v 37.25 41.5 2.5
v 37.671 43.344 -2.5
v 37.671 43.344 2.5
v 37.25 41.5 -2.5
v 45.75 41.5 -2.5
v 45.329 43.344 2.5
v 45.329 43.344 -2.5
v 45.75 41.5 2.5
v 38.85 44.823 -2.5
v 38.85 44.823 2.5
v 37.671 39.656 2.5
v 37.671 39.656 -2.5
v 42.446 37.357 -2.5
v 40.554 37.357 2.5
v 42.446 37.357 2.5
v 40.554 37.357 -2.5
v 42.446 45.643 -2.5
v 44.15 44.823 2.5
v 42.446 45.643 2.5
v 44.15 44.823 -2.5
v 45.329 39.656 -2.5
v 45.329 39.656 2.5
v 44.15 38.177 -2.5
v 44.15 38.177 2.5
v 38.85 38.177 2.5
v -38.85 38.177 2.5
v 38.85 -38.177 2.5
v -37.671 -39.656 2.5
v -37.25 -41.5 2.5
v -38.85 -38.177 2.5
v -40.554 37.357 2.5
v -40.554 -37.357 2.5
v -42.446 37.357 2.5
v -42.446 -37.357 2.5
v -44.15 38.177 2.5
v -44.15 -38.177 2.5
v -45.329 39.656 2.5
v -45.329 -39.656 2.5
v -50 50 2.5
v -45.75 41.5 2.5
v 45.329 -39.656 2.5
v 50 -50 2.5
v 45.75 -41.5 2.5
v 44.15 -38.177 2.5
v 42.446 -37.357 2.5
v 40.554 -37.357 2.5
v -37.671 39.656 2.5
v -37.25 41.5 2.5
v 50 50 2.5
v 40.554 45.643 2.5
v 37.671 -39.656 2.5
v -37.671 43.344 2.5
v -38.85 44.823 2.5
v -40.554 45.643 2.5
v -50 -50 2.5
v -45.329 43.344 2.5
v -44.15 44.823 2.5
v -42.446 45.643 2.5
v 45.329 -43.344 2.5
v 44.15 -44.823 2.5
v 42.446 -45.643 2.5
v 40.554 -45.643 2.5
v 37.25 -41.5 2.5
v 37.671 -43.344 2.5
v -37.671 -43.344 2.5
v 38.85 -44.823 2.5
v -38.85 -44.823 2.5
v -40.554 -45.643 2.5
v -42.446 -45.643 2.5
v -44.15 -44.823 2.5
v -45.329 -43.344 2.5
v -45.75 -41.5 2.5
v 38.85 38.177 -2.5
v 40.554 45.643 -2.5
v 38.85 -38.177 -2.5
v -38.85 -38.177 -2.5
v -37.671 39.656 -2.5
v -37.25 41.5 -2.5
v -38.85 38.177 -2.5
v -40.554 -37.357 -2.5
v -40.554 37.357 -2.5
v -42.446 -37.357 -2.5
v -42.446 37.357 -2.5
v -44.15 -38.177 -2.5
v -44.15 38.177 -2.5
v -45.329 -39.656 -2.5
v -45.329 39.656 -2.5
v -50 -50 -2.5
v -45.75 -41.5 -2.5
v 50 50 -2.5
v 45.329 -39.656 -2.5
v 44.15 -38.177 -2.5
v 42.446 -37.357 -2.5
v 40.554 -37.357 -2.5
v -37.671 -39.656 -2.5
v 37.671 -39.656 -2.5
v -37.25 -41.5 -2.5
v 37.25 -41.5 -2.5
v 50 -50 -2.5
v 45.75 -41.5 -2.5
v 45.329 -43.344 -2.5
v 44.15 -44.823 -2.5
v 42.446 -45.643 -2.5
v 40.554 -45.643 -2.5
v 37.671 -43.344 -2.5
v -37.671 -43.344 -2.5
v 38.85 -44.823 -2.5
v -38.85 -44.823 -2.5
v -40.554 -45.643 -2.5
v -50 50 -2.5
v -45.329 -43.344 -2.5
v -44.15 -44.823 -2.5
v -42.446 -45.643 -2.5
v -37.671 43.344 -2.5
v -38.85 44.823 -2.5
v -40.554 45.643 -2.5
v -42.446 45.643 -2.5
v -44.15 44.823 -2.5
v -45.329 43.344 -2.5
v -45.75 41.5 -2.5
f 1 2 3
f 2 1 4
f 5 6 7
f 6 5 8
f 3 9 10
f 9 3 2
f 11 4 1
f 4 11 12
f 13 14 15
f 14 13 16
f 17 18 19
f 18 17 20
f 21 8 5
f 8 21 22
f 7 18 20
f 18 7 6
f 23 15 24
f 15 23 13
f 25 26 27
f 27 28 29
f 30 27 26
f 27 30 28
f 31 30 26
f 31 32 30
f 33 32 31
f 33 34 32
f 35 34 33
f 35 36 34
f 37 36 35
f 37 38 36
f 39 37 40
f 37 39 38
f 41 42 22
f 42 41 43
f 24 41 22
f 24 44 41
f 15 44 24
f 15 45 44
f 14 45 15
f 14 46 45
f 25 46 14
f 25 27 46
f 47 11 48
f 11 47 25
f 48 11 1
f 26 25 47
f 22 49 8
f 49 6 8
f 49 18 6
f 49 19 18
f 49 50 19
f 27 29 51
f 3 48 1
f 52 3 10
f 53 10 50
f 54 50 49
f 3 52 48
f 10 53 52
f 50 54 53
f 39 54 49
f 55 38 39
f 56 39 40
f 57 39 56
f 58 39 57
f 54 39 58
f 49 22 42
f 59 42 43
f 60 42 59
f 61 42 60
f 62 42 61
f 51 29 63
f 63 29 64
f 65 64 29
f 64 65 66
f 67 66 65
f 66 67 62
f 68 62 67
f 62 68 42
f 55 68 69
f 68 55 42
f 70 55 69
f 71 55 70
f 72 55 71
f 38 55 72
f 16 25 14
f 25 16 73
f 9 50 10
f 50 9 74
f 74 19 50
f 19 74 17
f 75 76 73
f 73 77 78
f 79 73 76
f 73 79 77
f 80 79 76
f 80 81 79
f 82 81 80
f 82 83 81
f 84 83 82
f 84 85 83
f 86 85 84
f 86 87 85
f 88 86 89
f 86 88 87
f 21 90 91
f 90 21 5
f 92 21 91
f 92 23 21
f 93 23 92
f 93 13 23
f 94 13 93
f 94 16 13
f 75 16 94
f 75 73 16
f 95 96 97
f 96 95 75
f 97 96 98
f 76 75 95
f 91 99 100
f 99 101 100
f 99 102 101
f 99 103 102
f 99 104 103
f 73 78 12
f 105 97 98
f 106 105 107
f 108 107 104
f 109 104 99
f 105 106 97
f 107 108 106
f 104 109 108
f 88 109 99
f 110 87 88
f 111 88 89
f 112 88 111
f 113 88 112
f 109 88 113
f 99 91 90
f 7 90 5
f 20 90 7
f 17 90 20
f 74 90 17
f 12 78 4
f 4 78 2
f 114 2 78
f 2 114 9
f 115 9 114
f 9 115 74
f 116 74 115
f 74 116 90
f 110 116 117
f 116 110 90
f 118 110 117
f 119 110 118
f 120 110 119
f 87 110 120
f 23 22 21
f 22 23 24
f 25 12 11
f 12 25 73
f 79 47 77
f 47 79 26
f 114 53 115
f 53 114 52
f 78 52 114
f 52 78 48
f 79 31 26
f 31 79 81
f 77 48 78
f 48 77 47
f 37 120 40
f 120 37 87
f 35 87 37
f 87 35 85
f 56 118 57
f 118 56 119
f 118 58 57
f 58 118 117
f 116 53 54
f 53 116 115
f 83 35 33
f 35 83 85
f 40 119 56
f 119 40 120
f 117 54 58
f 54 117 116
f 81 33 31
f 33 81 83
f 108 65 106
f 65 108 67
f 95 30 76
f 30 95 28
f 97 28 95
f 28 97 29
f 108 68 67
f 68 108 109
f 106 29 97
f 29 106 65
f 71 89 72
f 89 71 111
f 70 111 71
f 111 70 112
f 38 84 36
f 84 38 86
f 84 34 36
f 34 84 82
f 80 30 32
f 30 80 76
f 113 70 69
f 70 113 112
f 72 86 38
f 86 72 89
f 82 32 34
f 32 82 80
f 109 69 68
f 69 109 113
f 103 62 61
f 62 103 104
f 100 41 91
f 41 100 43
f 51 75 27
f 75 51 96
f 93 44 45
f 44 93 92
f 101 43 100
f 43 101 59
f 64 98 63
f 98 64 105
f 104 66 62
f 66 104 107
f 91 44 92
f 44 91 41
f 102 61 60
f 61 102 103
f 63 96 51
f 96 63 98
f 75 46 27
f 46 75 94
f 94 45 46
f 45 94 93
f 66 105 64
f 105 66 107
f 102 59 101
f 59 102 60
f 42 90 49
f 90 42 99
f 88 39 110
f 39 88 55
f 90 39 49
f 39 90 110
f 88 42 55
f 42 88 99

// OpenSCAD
// Generated by SolidPython 1.1.3 on 2023-11-26 20:41:07


difference() {
	cube(center = true, size = [100, 100, 5]);
	union() {
		translate(v = [41.5000000000, 41.5000000000]) {
			cylinder(center = true, h = 5, r = 4.2500000000);
		}
		translate(v = [-41.5000000000, 41.5000000000]) {
			cylinder(center = true, h = 5, r = 4.2500000000);
		}
		translate(v = [-41.5000000000, -41.5000000000]) {
			cylinder(center = true, h = 5, r = 4.2500000000);
		}
		translate(v = [41.5000000000, -41.5000000000]) {
			cylinder(center = true, h = 5, r = 4.2500000000);
		}
	}
}
/***********************************************
*********      SolidPython code:      **********
************************************************
 
import solid
import numbers
import pudb
from solid.utils import *
import viewscad
import subprocess
import os
import os.path as osp
import math
import sys

chamfer_extrude=solid.import_scad("./chamfer_extrude.scad")
chamfer_extrude=chamfer_extrude.chamfer_extrude
r = viewscad.Renderer(width=800, height=800)

def debug(model,f_name,path="/home/ts/code/projects/mfd/designs/debug"):
    solid.scad_render_to_file(model,osp.join(path,f_name)+".scad")
#generate position list of wells using offset from center
wells_pos_from_center_4 = lambda offset: [[-offset,offset],
                                        [offset, offset],
                                        [-offset, -offset],
                                        [offset, -offset]]
#wells_pos_from_center_2 = lambda offset: [[0,offset],
#                                        [0, -offset]]
wells_pos_from_center_2 = lambda offset: [[offset,0],
                                        [-offset,0]]

def make_well(dims,shape=None,height=None,dxf=False):
    def circle_cylinder():
        if dxf or (height is None):
            well = solid.circle(r=dims, segments=64)
        else:
            well = solid.cylinder(r=dims, h=height, segments=64, center = True)
        return well
    if dims is None:
        sys.exit("radius needs to be a number")
    if isinstance(dims, numbers.Number):
        well =circle_cylinder()
    elif len(dims)==1:
        if isinstance(dims[1], numbers.Number):
            well =circle_cylinder()
        else:
            sys.exit("radius needs to be a number")
    elif len(dims)==2:
        well = solid.square(dims,center = True)
    elif len(dims)==3:
        well = solid.cube(dims, center = True)
    return well

def wells_top_bottom(center_gap,device_dims=None,shape=None,height=None, positions = None, dxf = False,well_shape=None):
    if well_shape == None:
        well_shape = make_well(device_dims,shape=shape,height=height,dxf=dxf)
    wells = []
    if positions is None:
        offset = radius+radius/2.0
        positions = wells_pos_from_center_2(offset)
    if dxf or (height is None):
        height = 0
    for position in positions:
        if dxf:
            wells.append(solid.translate([position[0],position[1]])(well_shape))
        else:
            wells.append(solid.translate([position[0],position[1],height/2.0])(well_shape))
    return  union()(*wells)

#place wells in four corners 
def four_corner(radius,height=None, positions = None, dxf = False):
    #if well pos not specified set
    #to equally spaced by half radius
    if positions is None:
        offset = radius+radius/2.0
        positions = wells_pos_from_center_4(offset)
    if dxf or (height is None):
        height = 0
    #make wells at positions with specified radius and height
    wells = []
    for position in positions:
        #make circle if making dxf
        if dxf:
            well_shape = solid.circle(r=radius, segments=64)
            well_shape = solid.translate([position[0],position[1]])(well_shape)
        #if stl make cylinder
        else:
            well_shape = solid.cylinder(r=radius, h=height, segments=64, center = True)
            well_shape = solid.translate([position[0],position[1],height/2.0])(well_shape)
        wells.append(well_shape)
    return  union()(*wells)

#generate channels 
def make_channels(length,width,height=0,num_chans=1,max_chans=None,spacing=None, dxf = False,
                  rotate_channels=False):
    if dxf or (height is None):
        height = 0
    #if channel gap not defined, is equal to
    if spacing is None: spacing = width
    #calculate number of channels if fitting max num within given width
    if not max_chans is None:
        import math
        num_chans = math.floor((max_chans-spacing)/(width+spacing))
    #get total width of channel section  
    total_width = (width*num_chans)+(spacing*(num_chans-1))

    #make template channel
    #if rotate_channels: width, length = length, width
    if dxf:
        channel_t = solid.square([length,width],center = True)
    else:
        channel_t = solid.cube([length,width,height], center = True)

    #if number channels is even, offset the first channel to center its gap
    if num_chans % 2 == 0: centering = -(width/2.0+spacing/2.0)
    else: centering = 0
    #move template channel up to align bottom at z = 0 
    #and offset center if necessary
    if dxf:
        channel_t = solid.translate([0,centering])(channel_t)
    else:
        channel_t = solid.translate([0,centering,height/2.0])(channel_t)

    #if rotate_channels: length,width = width,length
    #start making the channels
    channels = []
    for i in range(num_chans):
        #if i=0 there is no translation
        #if i=1, we make the first channel adjacent to second
        direction = i

        #if i>=1, we add channels alternating left and right
        if i >= 1:
            direction = -(i/2.0)
            if i % 2 == 1: direction = (-direction)+0.5
                
        #make channel at right position and add it to channel list
        translation_coords = [0,direction*(width+spacing)]
        #if rotate_channels: translation_coords = [direction*(width+spacing),0]
        if dxf:
            channel = solid.translate(translation_coords)(channel_t)
        else:
            channel = solid.translate([*translation_coords,0])(channel_t)
        channels.append(channel)
    
    #group all channels as one object
    channels = union()(*channels)
    #compute the x,y,z dimensions in order to pass as arguments 
    #for construction of other parts of device (such as the chambers)
    measurements = {'x':(length/2.0,-length/2.0),
                    'y':(total_width/2.0,-total_width/2.0)}
    if not dxf:
        measurements['z'] = (height,0)
    if rotate_channels:
        channels = solid.rotate(90)(channels)
        measurements['x'],measurements['y']=measurements['y'],measurements['x']
    return channels,measurements

def make_chambers(msrs,height=None,extra=0,len_until=None,width=None, dxf = False):
    #computes x,y,z length
    total = lambda x : abs(x[0]) + abs(x[1])
    
    #if specific height if specified
    #otherwise use same height as channels
    if dxf:
        pass
    elif not height is None:
        msrs['z'] = (height,0)
    else:
        msrs['z'] = (0,0)
        
    #make copy of measurements from channels to modify chamber dimensions 
    #and add length to chambers as specified
    chamber_dims = msrs.copy()
    #calculate length of chamber to reach specified offset
    if not len_until is None:
        chamber_len = len_until-(msrs['x'][0])
    #or add specified length to channel length (if not specified, adds 0)
    else:
        chamber_len = msrs['x'][0]+extra
    #set the chamber length based 
    chamber_dims['x'] = (chamber_len/2.0,-(chamber_len/2.0))
    #compute final dimensions of chamber
    if not width is None:
        chamber_dims['y'] = (width/2.0,-width/2.0)
    chamber_dims = [total(size) for size in chamber_dims.values()]
        
    #calculate chamber translation offset to place adjacent to channels
    chamber_trslt = msrs['x'][0]+(chamber_len/2.0)
    #compute chamber translation coordinates to align with channels
    #x = 1 moves chamber above channels
    #x = -1 moves chamber below channels
    if dxf:
        trslt = lambda x : [x*(chamber_trslt),0]
    else:
        trslt = lambda x : [x*(chamber_trslt),0,msrs['z'][0]/2.0]
    
    #function to make chamber at top or at bottom 
    if dxf:
        move = lambda x : solid.translate(trslt(x))(solid.square(chamber_dims, center = True) )
    else:
        move = lambda x : solid.translate(trslt(x))(solid.cube(chamber_dims,center = True))
    #make top and bottom chambers and return them as grouped
    top = move(1)
    bottom = move(-1)
    #chambers=solid.rotate(90)(solid.union()(top,bottom))
    chambers=(solid.union()(top,bottom))

    return chambers

#create alignment features 
def alignment_features(unit,dims,grid_size, mask_size = None, alignment = "hollow", units_from_center = (2.5,2.5), corner_len=None):
    width = grid_size[0]*dims[0]
    length = grid_size[1]*dims[1]
    if mask_size is None and corner_len is None:
        corner_len = (dims[0] + dims[1]) /2 / 8
    corner = lambda thickness_div : solid.union()( solid.square([corner_len,corner_len/thickness_div],center=False), solid.square([corner_len/thickness_div,corner_len],center=False) )
    
    def make_full(thickness_div):
        thickness = corner_len/thickness_div
        tr = solid.translate([0, 0, 0 ])(solid.rotate(180)(corner(thickness_div)))
        tr = solid.translate([thickness/2,thickness/2,0])(tr)
        bl = solid.translate([0, 0, 0 ])(solid.rotate(0)(corner(thickness_div)))
        bl = solid.translate([-thickness/2,-thickness/2,0])(bl)
        return solid.union()(tr,bl)
    
    def make_hollow(thickness_div):
        thickness = corner_len/(thickness_div/2)
        inner = make_full(thickness_div)
        outer = make_full(thickness_div/2)
        hollow = outer - inner 
        return hollow
    
    center = (width /2 , length/2)
    mask_pos = lambda x,y : (center[0] + x*(float(units_from_center[0])*dims[0]), center[1] + y*(float(units_from_center[1])*dims[1]))
    positions = []
    positions.append(mask_pos(1,0))
    positions.append(mask_pos(0,1))
    positions.append(mask_pos(-1,0))
    positions.append(mask_pos(0,-1))
    make_mask = lambda mtype : make_hollow(8) if mtype == "hollow" else make_full(8)
    masks = [ solid.translate([*position,0])(make_mask(alignment)) for position in positions]
    
    solid.scad_render_to_file(solid.union()(*masks),"./designs/open_chamber/masks.scad")
    #return unit - solid.union()(*masks)
    return solid.union()(*masks,unit)

def create_outline(thickness, array, dims, grid_size,):
    width = grid_size[0]*dims[0] + thickness *2
    length = grid_size[1]*dims[1] + thickness *2
    outer = solid.translate([-thickness, -thickness,0])(solid.square([width, length]))
    return outer-array

def create_wall(wall_thickness, outline_thickness, dims, grid_size, wall_height = 2000, dxf = False):
    inner_width = grid_size[0]*dims[0] + outline_thickness *2
    inner_length = grid_size[1]*dims[1] + outline_thickness *2
    outer_width = inner_width + wall_thickness * 2
    outer_length = inner_length + wall_thickness * 2
    outer_pos_x = -outline_thickness-wall_thickness
    outer_pos_y = -outline_thickness-wall_thickness
    inner_pos_x = -outline_thickness
    inner_pos_y = -outline_thickness
    if dxf:
        inner_wall = solid.translate([inner_pos_x,
                                      inner_pos_y,
                                      0])(solid.square([inner_width, inner_length]))
        outer_wall = solid.translate([outer_pos_x,
                                      outer_pos_y,
                                      0])(solid.square([outer_width, outer_length]))

        return outer_wall-inner_wall
    else:
        inner_wall = solid.translate([inner_pos_x,
                                      inner_pos_y,
                                      0])(solid.cube([inner_width, inner_length,wall_height]))
        outer_wall = solid.translate([outer_pos_x,
                                      outer_pos_y,
                                      0])(solid.cube([outer_width, outer_length,wall_height]))

        return outer_wall-inner_wall, {'wall_height': wall_height,
                                       'wall_thickness': wall_thickness,
                                       'inner_width':inner_width,
                                       'inner_length': inner_length,
                                       'outer_width': outer_width,
                                       'outer_length': outer_length,
                                       'outer_pos_x' : outer_pos_x,
                                       'outer_pos_y' : outer_pos_y,
                                       'inner_pos_x' : inner_pos_x,
                                       'inner_pos_y' : inner_pos_y}

def create_thicker_wall(wall_thickness, outer_wall_offset, wall_dims, dims, grid_size, height_start = .2, height_end=2, dxf = False):
    addon_wall,thicker_wall_dims = create_wall(wall_thickness, outer_wall_offset, dims, grid_size, wall_height=height_end-height_start, dxf = False)
    addon_wall = solid.translate([0,0,height_start])(addon_wall)

    thicker_wall_dims['wall_height'] = height_end
    thicker_wall_dims['wall_thickness'] = wall_dims['wall_thickness'] + wall_thickness
    return addon_wall, thicker_wall_dims
 
def add_lock_to_wall(wall,wall_dims,y_offset = 0,cut_ratio=0.7,L_length=3, gap_ratio=0.05, axis="x",width_ratio=1/2):
    # Makes L shape
    def make_L(max_length,length_thickness,max_width,width_thickness,height,y_offset):
        length = solid.cube([max_length,length_thickness,height])
        width = solid.cube([width_thickness,max_width,height])
        width = solid.translate([max_length-(width_thickness),0,0])(width)
        L = solid.union()(width,length)
        debug(L,"L")
        if axis == "x":
            L = solid.rotate(-90)(L)
            L = solid.translate([0,max_length,0])(L)
        else:
            L = solid.rotate(-180)(L)
            L = solid.translate([max_length,max_width,0])(L)
        return solid.translate([0,0,y_offset])(L)
    
    lock_length = L_length
    lock_width = wall_dims['wall_thickness']*width_ratio
    lock_length_thickness = lock_width/2
    lock_width_thickness = lock_width/2
    L_lock = make_L(lock_length,lock_length_thickness,lock_width,lock_width_thickness, wall_dims['wall_height']-y_offset, y_offset)
    
    margin_space = lock_length - lock_length*(1-gap_ratio)
    key_length = lock_length-margin_space
    key_length_thickness = lock_length_thickness-(margin_space*2)
    key_width = lock_width-(margin_space*2)
    key_width_thickness = lock_width_thickness-(margin_space*2)
    L_key = make_L(key_length,key_length_thickness,key_width,key_width_thickness, wall_dims['wall_height']-y_offset, y_offset)
    L_key = solid.translate([margin_space,margin_space,0])(L_key)
    L = solid.union()(L_lock,L_key)
    debug(L,"L")
    
    #Make cube to be used as negative to split frame in a half
    #Can choose if making left or right negative, specify ratio of split
    def make_negative(right,cut_ratio):
        if axis == "x":
            if right:
                length = wall_dims['outer_length']*(1-cut_ratio)
                pos_x = wall_dims['outer_pos_x']+(wall_dims['outer_length']*cut_ratio)
            else:
                length = wall_dims['outer_length']*(cut_ratio)
                pos_x = wall_dims['outer_pos_x'] 
            negative = solid.cube([wall_dims['outer_width'],length, wall_dims['wall_height']])
            negative = solid.translate([wall_dims['outer_pos_y'],pos_x,0])(negative)
        else:
            if right:
                length = wall_dims['outer_width']*(1-cut_ratio)
                pos_x = wall_dims['outer_pos_y']+(wall_dims['outer_width']*cut_ratio)
            else:
                length = wall_dims['outer_width']*(cut_ratio)
                pos_x = wall_dims['outer_pos_y'] 
            negative = solid.cube([length,wall_dims['outer_length'], wall_dims['wall_height']])
            negative = solid.translate([pos_x,wall_dims['outer_pos_x'],0])(negative)
        return negative, pos_x, length 
                      
    #Make negatives
    negative_right, right_half_pos_x, right_half_length = make_negative(True,cut_ratio)
    negative_left, left_half_pos_x, right_half_length = make_negative(False,cut_ratio)
    #Make halves
    left_half = solid.difference()(wall,negative_right)
    right_half = solid.difference()(wall,negative_left)
    def place_L(L, L_length,L_width):
        #Place L on top wall       
        offset_to_center = (wall_dims['wall_thickness']-L_width)/2
        if axis == "x":
            y_pos_top = (wall_dims['outer_pos_y'] +
                    wall_dims['outer_width'] - 
                    L_width - offset_to_center)
            top_L = solid.translate([y_pos_top,
                                     right_half_pos_x-(L_length),
                                     0])(L)
            #Place L on bottom wall       
            y_pos_bottom = wall_dims['outer_pos_y']+offset_to_center
            bottom_L = solid.translate([y_pos_bottom,
                                        right_half_pos_x-L_length,
                                        0])(L)
        else:
            y_pos_top = (wall_dims['outer_pos_x'] +
                    wall_dims['outer_length'] -
                    (L_width+offset_to_center))
            top_L = solid.translate([right_half_pos_x-L_length,
                                     y_pos_top,
                                     0])(L)
            #Place L on bottom wall       
            y_pos_bottom = wall_dims['outer_pos_y']+offset_to_center
            bottom_L = solid.translate([right_half_pos_x-L_length,
                                        y_pos_bottom,
                                        0])(L)
        return bottom_L, top_L
    #Make complimentary L pieces through union and differences
    #Make Lock
    bottom_L_lock, top_L_lock = place_L(L_lock,L_length,lock_width)
    left_half = solid.difference()(left_half,bottom_L_lock)
    left_half = solid.difference()(left_half,top_L_lock)
    #Make Key
    bottom_L_key, top_L_key = place_L(L_key,L_length,lock_width)
    right_half = solid.union()(right_half,bottom_L_key)
    right_half = solid.union()(right_half,top_L_key)
    return left_half, right_half


#build a row x col grid of containment units
def make_unit_array(unit,dims,grid_size, dxf = False, alignment = None, mask_size = None,
                    units_from_center = None,alignment_offset=None, alignment_mark_size=1):
    units = []
    for col in range(grid_size[1]):
        for row in range(grid_size[0]):
            if dxf:
                units.append(solid.translate([row*dims[0],col*dims[1]])(unit))
            else:
                units.append(solid.translate([row*dims[0],col*dims[1],dims[2]/2.0])(unit))
    array = solid.union()(*units)
    if (not alignment is None) and dxf:
        if not alignment_offset is None:
            array = solid.translate([alignment_offset[0],alignment_offset[1]])(array)
        array = alignment_features(array,dims, grid_size, alignment = alignment, mask_size = None, units_from_center = units_from_center,corner_len=alignment_mark_size)
        if not alignment_offset is None:
            array = solid.translate([-alignment_offset[0],-alignment_offset[1]])(array)
    return array


def make_taylor(wells_pos = wells_pos_from_center_4(2.25), well_rad = 1.5 ,
                well_height = 2, chan_w = 0.01, chan_l = 1, chan_h = 0.010 ,
                chan_gap = 0.040, max_chans = None,num_chans=100, chamber_height  = 0.100,
                columns = 1, rows = 1, chamber_len_until=2.25, add_channels = True, add_wells = True, 
                add_chambers = True, save_path = "./", alignment = None, units_from_center = 2,
                mask_size = None, render_stl = False, outline_thickness = 0.050, dxf = True,
                wall_height = 15, wall_thickness = 0.95, casing_x=9, casing_y=9, casing_z=0,rotate_units=0):

    dims = [casing_x, casing_y, casing_z]
    wells = four_corner(well_rad,well_height, dxf = dxf, positions = wells_pos)
    debug(wells,"wells")
    channels, msrs = make_channels(chan_l,chan_w,chan_h,dxf=dxf, spacing = chan_gap, max_chans=max_chans,num_chans=num_chans)
    debug(channels,"channels")
    chambers = make_chambers(msrs,dxf = dxf, height=chamber_height,len_until=chamber_len_until)
    debug(chambers,"chambers")

    #add together and render
    device_parts = []
    if add_channels:
        device_parts.append(channels)
    if add_wells:
        device_parts.append(wells)
    if add_chambers:
        device_parts.append(chambers)
    device=union()(*device_parts)
    device = rotate(rotate_units)(device)

    device=solid.translate([dims[0]/2.0,dims[1]/2.0,0])(device)
    channels = rotate(rotate_units)(channels)
    channels=solid.translate([dims[0]/2,dims[1]/2,0])(channels)
    chambers_wells = union()(wells,chambers)
    chambers_wells = rotate(rotate_units)(chambers_wells)
    chambers_wells=solid.translate([dims[0]/2,dims[1]/2,0])(chambers_wells)

    file_name = str(rows)+'x'+str(columns)+'_units_'
    grid_size = [rows,columns]

    if alignment:
        alignment="full"
    device = make_unit_array(device,dims,grid_size, dxf=dxf, alignment = alignment,
                                 units_from_center = units_from_center)
    channels = make_unit_array(channels,dims,grid_size, dxf=dxf, alignment = alignment,
                                 units_from_center = units_from_center)
    if alignment=="full":
        alignment="hollow"

    chambers_wells = make_unit_array(chambers_wells,dims,grid_size, dxf=dxf, alignment = alignment,
                                 units_from_center =units_from_center)

    def save_model(model,prefix):
        model_fname = os.path.abspath(save_path+prefix+"_"+file_name+".scad")
        solid.scad_render_to_file(model,model_fname)
        return model_fname

    wells_fname = save_model(wells,"wells")
    channels_fname = save_model(channels,"channels")
    device_fname = save_model(device,"device")
    chambers_wells_fname = save_model(chambers_wells,"chambers_wells")
    return (chambers_wells,chambers_wells_fname), (channels,channels_fname), (device,device_fname)

def make_device(design='open',rows=8,columns=6,wells_pos = 4.5,well_offset=3.2, well_rad=3.2,well_height=0.1,
                chan_l=1,chan_w=0.01,chan_h=0.01,chan_gap=0.015,num_chans=101,dxf=True,save_path="./designs/open_chamber/",
                casing_x=9.0,casing_y=18.0,casing_z=0,rotate_units=90,units_from_center=(3,1),chamber_len_until=4.5,
                chamber_width=None,alignment=True, add_wells=True, add_channels=True,add_chambers=True,well_shape=None):

    dims = [casing_x, casing_y, casing_z]
    if design == "open":
        wells_pos=wells_pos_from_center_2(wells_pos)
        wells = wells_top_bottom(well_offset*2,device_dims=well_rad,height=well_height, dxf = dxf, positions = wells_pos,well_shape=well_shape)
    elif design == "closed":
        wells_pos=wells_pos_from_center_4(wells_pos)
        debug(wells,"wells")
        wells = four_corner(well_offset,well_height,device_dims=well_rad, dxf = dxf, positions = wells_pos)
    else:
        print(design+" is not a valid design.\n Choose valid design: 'open' or 'closed'")
        exit()
    wells = rotate(rotate_units)(wells)
    wells=solid.translate([dims[0]/2,dims[1]/2,0])(wells)
    debug(wells,"wells")

    channels, msrs = make_channels(chan_l,chan_w,chan_h,dxf=dxf, spacing = chan_gap, num_chans=num_chans,rotate_channels=False)
    channels = rotate(rotate_units)(channels)
    channels=solid.translate([dims[0]/2,dims[1]/2,0])(channels)

    chambers=make_chambers(msrs,height=None,extra=0,len_until=chamber_len_until, width=chamber_width,dxf = dxf)
    chambers = rotate(rotate_units)(chambers)
    chambers=solid.translate([dims[0]/2,dims[1]/2,0])(chambers)

    device_parts = []
    if add_channels:
        device_parts.append(channels)
    if add_wells:
        device_parts.append(wells)
    if add_chambers:
        device_parts.append(chambers)
    device = union()(*device_parts)
    #device = rotate(rotate_units)(device)
    #device=solid.translate([dims[0]/2.0,dims[1]/2.0,0])(device)

    chambers_wells = []
    if add_chambers:
        chambers_wells.append(chambers)
    if add_wells:
        chambers_wells.append(wells)
    chambers_wells = union()(*chambers_wells)
    #chambers_wells = union()(wells,chambers)
    #chambers_wells = rotate(rotate_units)(chambers_wells)
    #chambers_wells=solid.translate([dims[0]/2,dims[1]/2,0])(chambers_wells)

    file_name = str(rows)+'x'+str(columns)+'_units_'

    grid_size = [rows,columns]
    if alignment:
        alignment="full"
    device = make_unit_array(device,dims,grid_size, dxf=dxf, alignment = alignment,
                                 units_from_center = units_from_center)
    channels = make_unit_array(channels,dims,grid_size, dxf=dxf, alignment = alignment,
                                 units_from_center = units_from_center)
    if alignment=="full":
        alignment="hollow"

    chambers_wells = make_unit_array(chambers_wells,dims,grid_size, dxf=dxf, alignment = alignment,
                                 units_from_center =units_from_center)

    def save_model(model,prefix):
        model_fname = os.path.abspath(save_path+prefix+"_"+file_name+".scad")
        solid.scad_render_to_file(model,model_fname)
        return model_fname

    wells_fname = save_model(wells,"wells")
    channels_fname = save_model(channels,"channels")
    device_fname = save_model(device,"device")
    chambers_wells_fname = save_model(chambers_wells,"chambers_wells")
    return (chambers_wells,chambers_wells_fname), (channels,channels_fname), (device,device_fname)


def make_open_chamber(rows=8,columns=6,wells_pos = wells_pos_from_center_2(4.5), well_rad=3.2,well_height=0.1,
                      chan_l=1,chan_w=0.01,chan_h=0.01,chan_gap=0.015,num_chans=101,dxf=True,save_path="./designs/open_chamber/",
                      casing_x=9.0,casing_y=18.0,casing_z=0,rotate_units=90,units_from_center=(3,1),chamber_len_until=4.5,
                      chamber_width=None,alignment=True, add_wells=True, add_channels=True,add_chambers=True,well_shape=None):

    dims = [casing_x, casing_y, casing_z]
    wells = wells_top_bottom(well_rad,height=well_height, dxf = dxf, positions = wells_pos, well_shape=well_shape)
    channels, msrs = make_channels(chan_l,chan_w,chan_h,dxf=dxf, spacing = chan_gap, num_chans=num_chans,rotate_channels=False)
    chambers=make_chambers(msrs,height=None,extra=0,len_until=chamber_len_until, width=chamber_width,dxf = dxf)
    debug(chambers,"chambers")
    device_parts = []
    if add_channels:
        device_parts.append(channels)
    if add_wells:
        device_parts.append(wells)
    if add_chambers:
        device_parts.append(chambers)
    device = union()(*device_parts)
    device = rotate(rotate_units)(device)
    device=solid.translate([dims[0]/2.0,dims[1]/2.0,0])(device)
    channels = rotate(rotate_units)(channels)
    channels=solid.translate([dims[0]/2,dims[1]/2,0])(channels)
    chambers_wells = union()(wells,chambers)
    chambers_wells = rotate(rotate_units)(chambers_wells)
    chambers_wells=solid.translate([dims[0]/2,dims[1]/2,0])(chambers_wells)

    file_name = str(rows)+'x'+str(columns)+'_units_'

    grid_size = [rows,columns]
    if alignment:
        alignment="full"
    device = make_unit_array(device,dims,grid_size, dxf=dxf, alignment = alignment,
                                 units_from_center = units_from_center)
    channels = make_unit_array(channels,dims,grid_size, dxf=dxf, alignment = alignment,
                                 units_from_center = units_from_center)
    if alignment=="full":
        alignment="hollow"

    chambers_wells = make_unit_array(chambers_wells,dims,grid_size, dxf=dxf, alignment = alignment,
                                 units_from_center =units_from_center)

    def save_model(model,prefix):
        model_fname = os.path.abspath(save_path+prefix+"_"+file_name+".scad")
        solid.scad_render_to_file(model,model_fname)
        return model_fname

    wells_fname = save_model(wells,"wells")
    channels_fname = save_model(channels,"channels")
    device_fname = save_model(device,"device")
    chambers_wells_fname = save_model(chambers_wells,"chambers_wells")
    return (chambers_wells,chambers_wells_fname), (channels,channels_fname), (device,device_fname)

def to_dxf(scad_path):
    dxf_path = scad_path.replace(".scad",".dxf")
    subprocess.call(["openscad", "-o", dxf_path, scad_path])
    import ezdxf
    temp_dxf = ezdxf.readfile(dxf_path)
    temp_dxf.saveas(dxf_path)

#def make_walls(diameter,thickness,grid_size,dims,height=20,segments=256,make_inner=True):
#    wafer_wall_out = solid.cylinder(r=diameter/2,h=height, segments=segments)
#    wafer_wall_in = solid.cylinder(r=(diameter/2-thickness),h=height, segments=segments)
#    wafer_wall = solid.difference()(wafer_wall_out,wafer_wall_in)
#    wafer_wall = solid.translate([grid_size[1]*dims[1]/2.0,grid_size[0]*dims[0]/2.0])(wafer_wall)
#
#    vertical_wall_length = grid_size[1]*dims[1]
#    horizontal_wall_length = grid_size[0]*dims[0]
#    vertical_wall = solid.cube([vertical_wall_length,thickness,height],center = True)
#    vertical_wall = solid.translate([vertical_wall_length/2,0,height/2])(vertical_wall)
#    horizontal_wall = solid.cube([thickness,horizontal_wall_length,height],center = True)
#    horizontal_wall = solid.translate([0,vertical_wall_length/2,height/2])(horizontal_wall)
#    walls = []
#    walls.append(horizontal_wall)
#    walls.append(vertical_wall)
#    for col in range(grid_size[1]):
#        if col == grid_size[1]-1: 
#            walls.append(solid.translate([0,(col+1)*dims[1]])(vertical_wall))
#        elif col > 0 and col < grid_size[1]-1 and make_inner==True:
#            walls.append(solid.translate([0,(col+1)*dims[1]])(vertical_wall))
#    for row in range(grid_size[0]):
#        if row == grid_size[0]-1: 
#            walls.append(solid.translate([(row+1)*dims[0],0])(horizontal_wall))
#        elif row > 0 and row < grid_size[0]-1 and make_inner==True:
#            walls.append(solid.translate([(row+1)*dims[0],0])(horizontal_wall))
#    walls = union()(*walls)
#    wafer_walls = union()(walls,wafer_wall)
#    return walls,wafer_wall,wafer_walls

def make_walls(diameter,thickness,grid_size,dims,height=20,segments=256,make_inner=True,padx=0,pady=0):
    wafer_wall_out = solid.cylinder(r=diameter/2,h=height, segments=segments)
    wafer_wall_in = solid.cylinder(r=(diameter/2-thickness),h=height, segments=segments)
    wafer_wall = solid.difference()(wafer_wall_out,wafer_wall_in)
    wafer_wall = solid.translate([grid_size[1]*dims[1]/2.0,grid_size[0]*dims[0]/2.0])(wafer_wall)

    vertical_wall_length = grid_size[0]*dims[0]+padx
    horizontal_wall_length = grid_size[1]*dims[1]+pady
    vertical_wall = solid.cube([vertical_wall_length,thickness,height],center = True)
    vertical_wall = solid.translate([vertical_wall_length/2-pady/2,-padx/2,height/2])(vertical_wall)
    horizontal_wall = solid.cube([thickness,horizontal_wall_length,height],center = True)
    horizontal_wall = solid.translate([-pady/2,horizontal_wall_length/2-padx/2,height/2])(horizontal_wall)
    walls = []
    walls.append(horizontal_wall)
    walls.append(vertical_wall)
    for col in range(grid_size[1]):
        if col == grid_size[1]-1: 
            walls.append(solid.translate([0,(col+1)*dims[1]+pady])(vertical_wall))
        elif col > 0 and col < grid_size[1]-1 and make_inner==True:
            walls.append(solid.translate([0,(col+1)*dims[1]])(vertical_wall))
    for row in range(grid_size[0]):
        if row == grid_size[0]-1: 
            walls.append(solid.translate([(row+1)*dims[0]+padx,0])(horizontal_wall))
        elif row > 0 and row < grid_size[0]-1 and make_inner==True:
            walls.append(solid.translate([(row+1)*dims[0],0])(horizontal_wall))
    walls = union()(*walls)
    wafer_walls = union()(walls,wafer_wall)
    return walls,wafer_wall,wafer_walls

def save_model(model,base_path,base_name,dxf=True):
    if not os.path.exists(base_path):
        os.makedirs(base_path)
    dxf_path=osp.join(base_path,base_name+".scad")
    solid.scad_render_to_file(model,osp.join(dxf_path))
    if dxf:
        to_dxf(dxf_path)

def make_wafer(diameter,flat_len,thickness):
    wafer = solid.cylinder(r1=diameter/2,r2=diameter/2,h=thickness,segments=512,)()
    x_start_flat=(flat_len/2)
    y_start_flat = math.sqrt(((diameter/2)**2) - (x_start_flat**2) )
    height_delete_flat=diameter/2-y_start_flat
    flat_delete = solid.cube([flat_len,height_delete_flat,thickness],center=False)()
    flat_delete = solid.translate([-flat_len/2,y_start_flat,0])(flat_delete)
    wafer = solid.difference()(wafer,flat_delete)
    wafer = solid.rotate(90)(wafer)
    return wafer

def add_wafer_to_mask(wafer_size,flat_len,mask,grid_size,dims,wafer_line_thickness=0.1,outer_mask_thickness=5,alignment_offset=None):
    def make_wafer_mask(wafer_size,flat_len):
        wafer_mask = make_wafer(wafer_size,flat_len,1)
        wafer_mask = solid.projection()(wafer_mask)
        wafer_mask = solid.translate([grid_size[0]*dims[0]/2.0,grid_size[1]*dims[1]/2.0])(wafer_mask)
        if not alignment_offset is None:
            wafer_mask = solid.translate([-alignment_offset[0],-alignment_offset[1]])(wafer_mask)
        return wafer_mask

    inner_wafer_line_mask = make_wafer_mask(wafer_size-wafer_line_thickness/2,flat_len)
    outer_wafer_line_mask = make_wafer_mask(wafer_size+wafer_line_thickness/2,flat_len)
    outer_wafer_mask = make_wafer_mask(wafer_size+outer_mask_thickness,flat_len)
    outer_wafer_mask = solid.difference()(outer_wafer_mask,outer_wafer_line_mask)
    wafer_mask = solid.union()(outer_wafer_mask,inner_wafer_line_mask)

    return solid.difference()(wafer_mask,mask)

def make_posts(post_shape,post_height):
    posts = solid.linear_extrude(height=post_height)(post_shape)
    return posts

def make_wafer_empty(diameter,flat_len,thickness,margin,notch_len=20,notch_height=5,oversize=1.01):
    diameter*=oversize
    flat_len*=oversize
    wafer = make_wafer(diameter,flat_len,thickness)
    holder = solid.cylinder(r1=diameter/2+margin,r2=diameter/2+margin,h=thickness,segments=512)()
    holder = solid.difference()(holder,wafer)

    x_start_flat=(flat_len/2)
    y_start_flat = math.sqrt(((diameter/2)**2) - (x_start_flat**2) )
    height_delete_flat=diameter/2-y_start_flat
    notch = solid.cube([notch_len,notch_height,thickness],center=False)()
    notch = solid.translate([-notch_len/2,y_start_flat,0])(notch)
    notch = solid.rotate(90)(notch)
    return solid.difference()(holder,notch)

def wafer_print_calibration(diameter,thickness,height,z_offset):
    circles = []
    radii = []
    radii.append(diameter/2.0*0.8)
    radii.append(diameter/2.0*0.6)
    radii.append(diameter/2.0*0.4)
    radii.append(diameter/2.0*0.2)
    for radius in radii:
        inner = solid.cylinder(r1=radius-(thickness/2.0),r2=radius-(thickness/2.0),h=thickness,segments=512,)()
        outer = solid.cylinder(r1=radius+(thickness/2.0),r2=radius+(thickness/2.0),h=thickness,segments=512,)()
        diff = solid.difference()(outer,inner)
        circles.append(diff)
    circles = solid.union()(*circles)
    circles = solid.translate([0,0,z_offset])(circles)
    return circles

def make_rack(wells,dims,grid_size,alignment_offset,rack_x,rack_y,rack_thickness,bolt_width,add_bolts=True):

    #get X and Y dimensions of gride of pipette tips
    X_len = dims[0]*grid_size[0]
    Y_len = dims[1]*grid_size[1]
    #make rack
    rack = solid.cube([rack_x,rack_y,rack_thickness],center=True)

    if add_bolts:
    #add bolt holes
        bolt_hole=solid.cylinder(r=bolt_width/2,h=rack_thickness,center=True)()
        bolt_holes = []
        bolt_holes.append(solid.translate([rack_x/2-1.5*bolt_width,rack_y/2-1.5*bolt_width])(bolt_hole))
        bolt_holes.append(solid.translate([-rack_x/2+1.5*bolt_width,rack_y/2-1.5*bolt_width])(bolt_hole))
        bolt_holes.append(solid.translate([-rack_x/2+1.5*bolt_width,-rack_y/2+1.5*bolt_width])(bolt_hole))
        bolt_holes.append(solid.translate([rack_x/2-1.5*bolt_width,-rack_y/2+1.5*bolt_width])(bolt_hole))
        bolt_holes = solid.union()(*bolt_holes)
        rack=solid.difference()(rack,bolt_holes)
    rack_support = rack

    #center rack with pipette holes
    rack = solid.translate([0,0,rack_thickness/2])(rack)
    rack = solid.translate([X_len/2,Y_len/2])(rack)
    rack = solid.translate([-alignment_offset[0],-alignment_offset[1]])(rack)
    wells = solid.linear_extrude(height=rack_thickness)(wells)
    rack = solid.difference()(rack,wells)
    return rack, rack_support

def make_pillar(wells,dims,grid_size,alignment_offset,rack_x,rack_y,pillar_height,rack_thickness,bolt_width,add_bolts=True,taper_angle=1,bolt_position_corner=1.5):

    #get X and Y dimensions of gride of pipette tips
    X_len = dims[0]*grid_size[0]
    Y_len = dims[1]*grid_size[1]
    #make rack
    rack = solid.cube([rack_x,rack_y,rack_thickness],center=True)
    
    if add_bolts:
    #add bolt holes
        bolt_hole=solid.cylinder(r=bolt_width/2,h=rack_thickness,center=True)()
        bolt_holes = []
        bolt_holes.append(solid.translate([rack_x/2-bolt_position_corner*bolt_width,rack_y/2-bolt_position_corner*bolt_width])(bolt_hole))
        bolt_holes.append(solid.translate([-rack_x/2+bolt_position_corner*bolt_width,rack_y/2-bolt_position_corner*bolt_width])(bolt_hole))
        bolt_holes.append(solid.translate([-rack_x/2+bolt_position_corner*bolt_width,-rack_y/2+bolt_position_corner*bolt_width])(bolt_hole))
        bolt_holes.append(solid.translate([rack_x/2-bolt_position_corner*bolt_width,-rack_y/2+bolt_position_corner*bolt_width])(bolt_hole))
        bolt_holes = solid.union()(*bolt_holes)
        rack=solid.difference()(rack,bolt_holes)
    rack_support = rack

    #center rack with pipette holes
    #rack = solid.translate([0,0,-rack_thickness])(rack)
    rack = solid.translate([X_len/2,Y_len/2])(rack)
    rack = solid.translate([-alignment_offset[0],-alignment_offset[1]])(rack)
    if not taper_angle == 0:
        wells=chamfer_extrude(pillar_height,taper_angle,segments=20)(wells)
    else:
        wells = solid.linear_extrude(height=pillar_height)(wells)
    rack = solid.union()(rack,wells)
    return rack, rack_support

def deg_taper_len(height,deg):
    if not deg == 0:
        return height*math.tan(math.radians(deg))
    else:
        return 0









 
 
************************************************/
